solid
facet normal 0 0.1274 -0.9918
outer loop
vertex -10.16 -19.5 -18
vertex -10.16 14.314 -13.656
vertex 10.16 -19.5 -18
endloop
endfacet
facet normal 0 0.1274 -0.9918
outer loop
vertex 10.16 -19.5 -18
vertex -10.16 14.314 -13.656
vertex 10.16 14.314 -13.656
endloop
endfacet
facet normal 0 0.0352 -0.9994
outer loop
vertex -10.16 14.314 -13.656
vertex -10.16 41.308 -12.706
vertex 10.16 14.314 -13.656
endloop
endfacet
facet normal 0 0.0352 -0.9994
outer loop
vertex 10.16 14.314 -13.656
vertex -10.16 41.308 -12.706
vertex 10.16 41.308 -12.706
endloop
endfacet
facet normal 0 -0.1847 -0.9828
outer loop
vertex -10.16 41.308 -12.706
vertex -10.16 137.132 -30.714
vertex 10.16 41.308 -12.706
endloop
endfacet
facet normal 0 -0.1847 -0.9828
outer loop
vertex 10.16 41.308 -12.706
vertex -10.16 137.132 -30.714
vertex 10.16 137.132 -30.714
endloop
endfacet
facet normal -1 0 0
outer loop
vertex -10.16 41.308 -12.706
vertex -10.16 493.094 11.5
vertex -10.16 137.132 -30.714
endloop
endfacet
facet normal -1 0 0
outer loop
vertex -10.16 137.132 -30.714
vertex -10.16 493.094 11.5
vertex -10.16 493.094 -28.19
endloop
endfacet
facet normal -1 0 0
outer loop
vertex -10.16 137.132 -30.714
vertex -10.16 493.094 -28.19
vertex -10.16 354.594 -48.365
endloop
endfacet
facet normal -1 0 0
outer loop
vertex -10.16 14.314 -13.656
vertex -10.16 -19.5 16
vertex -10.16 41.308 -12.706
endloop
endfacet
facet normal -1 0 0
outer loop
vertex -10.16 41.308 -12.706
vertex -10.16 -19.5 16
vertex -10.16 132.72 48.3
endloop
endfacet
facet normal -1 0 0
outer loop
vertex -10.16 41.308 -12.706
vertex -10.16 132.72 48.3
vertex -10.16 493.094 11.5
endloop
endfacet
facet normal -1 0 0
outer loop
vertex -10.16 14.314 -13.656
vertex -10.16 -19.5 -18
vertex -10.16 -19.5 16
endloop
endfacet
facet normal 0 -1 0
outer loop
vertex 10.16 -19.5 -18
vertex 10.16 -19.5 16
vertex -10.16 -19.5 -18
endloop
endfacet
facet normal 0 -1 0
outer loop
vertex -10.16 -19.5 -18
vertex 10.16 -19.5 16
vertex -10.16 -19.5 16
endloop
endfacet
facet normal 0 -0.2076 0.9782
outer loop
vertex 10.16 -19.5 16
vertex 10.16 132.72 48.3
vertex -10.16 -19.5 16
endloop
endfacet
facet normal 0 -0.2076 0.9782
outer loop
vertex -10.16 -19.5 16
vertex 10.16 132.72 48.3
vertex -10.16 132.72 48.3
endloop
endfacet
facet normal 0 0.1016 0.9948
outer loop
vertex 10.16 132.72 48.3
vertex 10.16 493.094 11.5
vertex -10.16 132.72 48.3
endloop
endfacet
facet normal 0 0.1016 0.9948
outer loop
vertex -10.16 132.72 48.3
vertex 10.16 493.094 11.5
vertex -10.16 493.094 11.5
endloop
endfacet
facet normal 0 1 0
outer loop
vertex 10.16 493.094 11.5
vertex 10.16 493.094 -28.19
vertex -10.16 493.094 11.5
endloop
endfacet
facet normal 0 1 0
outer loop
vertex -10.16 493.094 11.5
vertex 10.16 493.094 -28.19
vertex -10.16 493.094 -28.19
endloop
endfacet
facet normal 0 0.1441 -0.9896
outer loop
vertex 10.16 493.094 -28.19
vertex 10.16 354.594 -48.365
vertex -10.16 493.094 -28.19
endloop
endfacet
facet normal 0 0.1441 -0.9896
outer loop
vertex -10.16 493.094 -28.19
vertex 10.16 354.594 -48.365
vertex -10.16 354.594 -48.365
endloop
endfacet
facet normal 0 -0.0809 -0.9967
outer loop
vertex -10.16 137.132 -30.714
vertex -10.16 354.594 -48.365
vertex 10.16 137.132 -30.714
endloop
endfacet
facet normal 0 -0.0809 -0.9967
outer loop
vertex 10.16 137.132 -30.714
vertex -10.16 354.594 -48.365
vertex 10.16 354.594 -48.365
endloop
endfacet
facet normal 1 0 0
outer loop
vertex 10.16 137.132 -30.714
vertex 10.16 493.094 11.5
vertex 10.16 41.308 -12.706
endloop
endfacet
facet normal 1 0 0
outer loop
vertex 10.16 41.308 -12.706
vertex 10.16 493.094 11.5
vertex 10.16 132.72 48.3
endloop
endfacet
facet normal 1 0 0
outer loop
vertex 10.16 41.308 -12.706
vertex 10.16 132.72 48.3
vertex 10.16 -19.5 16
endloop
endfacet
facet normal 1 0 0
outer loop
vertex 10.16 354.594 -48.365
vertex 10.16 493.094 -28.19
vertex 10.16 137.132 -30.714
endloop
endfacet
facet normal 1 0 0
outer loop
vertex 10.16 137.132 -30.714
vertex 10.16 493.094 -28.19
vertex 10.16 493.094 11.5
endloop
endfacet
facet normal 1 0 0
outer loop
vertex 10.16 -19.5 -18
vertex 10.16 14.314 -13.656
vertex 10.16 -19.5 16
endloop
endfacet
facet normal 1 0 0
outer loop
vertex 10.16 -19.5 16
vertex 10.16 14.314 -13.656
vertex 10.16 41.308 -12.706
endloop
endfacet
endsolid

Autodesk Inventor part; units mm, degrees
ref_plane "XZ Plane" through (0, 0, 0) normal (0, 1, 0) x (-1, 0, 0)
sketch "BoundingBox" plane through (0, 0, 0) normal (1, 0, 0) x (0, 1, 0)
  line L0 (-19.5, 16) -> (-19.5, -18)
  line L1 (-19.5, -18) -> (354.5938, -48.3648)
  line L2 (354.5938, -48.3648) -> (493.0939, -28.1898)
  line L3 (493.0939, -28.1898) -> (493.0939, 11.5)
  line L4 (493.0939, 11.5) -> (132.7202, 48.3)
  line L5 (132.7202, 48.3) -> (-19.5, 16)
  circle A0 centre (354.5938, -31.3648) radius 3.175 construction
  line L6 (354.5938, -48.3648) -> (354.5938, -31.3648) construction
  point P0 (0, 0)
  point P1 (0, 0)
  point P2 (480.5939, 0)
  point P3 (0, 0)
  point P4 (480.5939, 0)
  point P5 (60.5718, 4.3926)
  point P6 (60.5718, 4.3926)
  dimension "d0" = 19.5
  dimension "d1" = 101.98
  dimension "d2" = 18
  dimension "d3" = 16
  dimension "d4" = 12.5
  dimension "d5" = 11.5
  dimension "d6" = 48.3
  dimension "d7" = 39.6898
  dimension "d8" = 17
  dimension "d11" = 480.5939
extrude "BoundingBoxFeature" add sketch "BoundingBox" along normal mid plane 20.32
sketch "Sketch2" plane through (10.16, 0, 0) normal (1, 0, 0) x (0, 0, -1)
  line L0 (18, -19.5) -> (48.3648, 354.5938) projected
  line L1 (48.3648, 354.5938) -> (28.1898, 493.0939) projected
  line L2 (28.1898, 493.0939) -> (-11.5, 493.0939) projected
  line L3 (-11.5, 493.0939) -> (-48.3, 132.7202) projected
  line L4 (-48.3, 132.7202) -> (-16, -19.5) projected
  line L5 (-16, -19.5) -> (18, -19.5) projected
  arc A0 (-14.9278, 11.8349) -> (11.9767, 14.8142) centre (0, 0) ccw construction
  spline S0 degree 3 poles (12.7057, 41.3075) (12.6414, 56.2569) (13.3397, 71.2032) (14.7987, 86.0881) knots -4.923013 -4.923013 -4.923013 -4.923013 -0.435331 -0.435331 -0.435331 -0.435331 construction
  arc A1 (12.7313, 39.6054) -> (13.6561, 14.3145) centre (450.618, 42.9547) ccw construction
  line L6 (13.6561, 14.3145) -> (18, -19.5)
  line L7 (13.6561, 14.3145) -> (12.7057, 41.3075)
  line L8 (12.7057, 41.3075) -> (30.7136, 137.1318)
  line L9 (30.7136, 137.1318) -> (18, -19.5)
  point P0 (0, 0)
extrude "Extrusion2" cut sketch "Sketch2" along normal through all both and the other way through all contours L6 L7 L8 L0
properties part number "ForearmBoundingBOx"
